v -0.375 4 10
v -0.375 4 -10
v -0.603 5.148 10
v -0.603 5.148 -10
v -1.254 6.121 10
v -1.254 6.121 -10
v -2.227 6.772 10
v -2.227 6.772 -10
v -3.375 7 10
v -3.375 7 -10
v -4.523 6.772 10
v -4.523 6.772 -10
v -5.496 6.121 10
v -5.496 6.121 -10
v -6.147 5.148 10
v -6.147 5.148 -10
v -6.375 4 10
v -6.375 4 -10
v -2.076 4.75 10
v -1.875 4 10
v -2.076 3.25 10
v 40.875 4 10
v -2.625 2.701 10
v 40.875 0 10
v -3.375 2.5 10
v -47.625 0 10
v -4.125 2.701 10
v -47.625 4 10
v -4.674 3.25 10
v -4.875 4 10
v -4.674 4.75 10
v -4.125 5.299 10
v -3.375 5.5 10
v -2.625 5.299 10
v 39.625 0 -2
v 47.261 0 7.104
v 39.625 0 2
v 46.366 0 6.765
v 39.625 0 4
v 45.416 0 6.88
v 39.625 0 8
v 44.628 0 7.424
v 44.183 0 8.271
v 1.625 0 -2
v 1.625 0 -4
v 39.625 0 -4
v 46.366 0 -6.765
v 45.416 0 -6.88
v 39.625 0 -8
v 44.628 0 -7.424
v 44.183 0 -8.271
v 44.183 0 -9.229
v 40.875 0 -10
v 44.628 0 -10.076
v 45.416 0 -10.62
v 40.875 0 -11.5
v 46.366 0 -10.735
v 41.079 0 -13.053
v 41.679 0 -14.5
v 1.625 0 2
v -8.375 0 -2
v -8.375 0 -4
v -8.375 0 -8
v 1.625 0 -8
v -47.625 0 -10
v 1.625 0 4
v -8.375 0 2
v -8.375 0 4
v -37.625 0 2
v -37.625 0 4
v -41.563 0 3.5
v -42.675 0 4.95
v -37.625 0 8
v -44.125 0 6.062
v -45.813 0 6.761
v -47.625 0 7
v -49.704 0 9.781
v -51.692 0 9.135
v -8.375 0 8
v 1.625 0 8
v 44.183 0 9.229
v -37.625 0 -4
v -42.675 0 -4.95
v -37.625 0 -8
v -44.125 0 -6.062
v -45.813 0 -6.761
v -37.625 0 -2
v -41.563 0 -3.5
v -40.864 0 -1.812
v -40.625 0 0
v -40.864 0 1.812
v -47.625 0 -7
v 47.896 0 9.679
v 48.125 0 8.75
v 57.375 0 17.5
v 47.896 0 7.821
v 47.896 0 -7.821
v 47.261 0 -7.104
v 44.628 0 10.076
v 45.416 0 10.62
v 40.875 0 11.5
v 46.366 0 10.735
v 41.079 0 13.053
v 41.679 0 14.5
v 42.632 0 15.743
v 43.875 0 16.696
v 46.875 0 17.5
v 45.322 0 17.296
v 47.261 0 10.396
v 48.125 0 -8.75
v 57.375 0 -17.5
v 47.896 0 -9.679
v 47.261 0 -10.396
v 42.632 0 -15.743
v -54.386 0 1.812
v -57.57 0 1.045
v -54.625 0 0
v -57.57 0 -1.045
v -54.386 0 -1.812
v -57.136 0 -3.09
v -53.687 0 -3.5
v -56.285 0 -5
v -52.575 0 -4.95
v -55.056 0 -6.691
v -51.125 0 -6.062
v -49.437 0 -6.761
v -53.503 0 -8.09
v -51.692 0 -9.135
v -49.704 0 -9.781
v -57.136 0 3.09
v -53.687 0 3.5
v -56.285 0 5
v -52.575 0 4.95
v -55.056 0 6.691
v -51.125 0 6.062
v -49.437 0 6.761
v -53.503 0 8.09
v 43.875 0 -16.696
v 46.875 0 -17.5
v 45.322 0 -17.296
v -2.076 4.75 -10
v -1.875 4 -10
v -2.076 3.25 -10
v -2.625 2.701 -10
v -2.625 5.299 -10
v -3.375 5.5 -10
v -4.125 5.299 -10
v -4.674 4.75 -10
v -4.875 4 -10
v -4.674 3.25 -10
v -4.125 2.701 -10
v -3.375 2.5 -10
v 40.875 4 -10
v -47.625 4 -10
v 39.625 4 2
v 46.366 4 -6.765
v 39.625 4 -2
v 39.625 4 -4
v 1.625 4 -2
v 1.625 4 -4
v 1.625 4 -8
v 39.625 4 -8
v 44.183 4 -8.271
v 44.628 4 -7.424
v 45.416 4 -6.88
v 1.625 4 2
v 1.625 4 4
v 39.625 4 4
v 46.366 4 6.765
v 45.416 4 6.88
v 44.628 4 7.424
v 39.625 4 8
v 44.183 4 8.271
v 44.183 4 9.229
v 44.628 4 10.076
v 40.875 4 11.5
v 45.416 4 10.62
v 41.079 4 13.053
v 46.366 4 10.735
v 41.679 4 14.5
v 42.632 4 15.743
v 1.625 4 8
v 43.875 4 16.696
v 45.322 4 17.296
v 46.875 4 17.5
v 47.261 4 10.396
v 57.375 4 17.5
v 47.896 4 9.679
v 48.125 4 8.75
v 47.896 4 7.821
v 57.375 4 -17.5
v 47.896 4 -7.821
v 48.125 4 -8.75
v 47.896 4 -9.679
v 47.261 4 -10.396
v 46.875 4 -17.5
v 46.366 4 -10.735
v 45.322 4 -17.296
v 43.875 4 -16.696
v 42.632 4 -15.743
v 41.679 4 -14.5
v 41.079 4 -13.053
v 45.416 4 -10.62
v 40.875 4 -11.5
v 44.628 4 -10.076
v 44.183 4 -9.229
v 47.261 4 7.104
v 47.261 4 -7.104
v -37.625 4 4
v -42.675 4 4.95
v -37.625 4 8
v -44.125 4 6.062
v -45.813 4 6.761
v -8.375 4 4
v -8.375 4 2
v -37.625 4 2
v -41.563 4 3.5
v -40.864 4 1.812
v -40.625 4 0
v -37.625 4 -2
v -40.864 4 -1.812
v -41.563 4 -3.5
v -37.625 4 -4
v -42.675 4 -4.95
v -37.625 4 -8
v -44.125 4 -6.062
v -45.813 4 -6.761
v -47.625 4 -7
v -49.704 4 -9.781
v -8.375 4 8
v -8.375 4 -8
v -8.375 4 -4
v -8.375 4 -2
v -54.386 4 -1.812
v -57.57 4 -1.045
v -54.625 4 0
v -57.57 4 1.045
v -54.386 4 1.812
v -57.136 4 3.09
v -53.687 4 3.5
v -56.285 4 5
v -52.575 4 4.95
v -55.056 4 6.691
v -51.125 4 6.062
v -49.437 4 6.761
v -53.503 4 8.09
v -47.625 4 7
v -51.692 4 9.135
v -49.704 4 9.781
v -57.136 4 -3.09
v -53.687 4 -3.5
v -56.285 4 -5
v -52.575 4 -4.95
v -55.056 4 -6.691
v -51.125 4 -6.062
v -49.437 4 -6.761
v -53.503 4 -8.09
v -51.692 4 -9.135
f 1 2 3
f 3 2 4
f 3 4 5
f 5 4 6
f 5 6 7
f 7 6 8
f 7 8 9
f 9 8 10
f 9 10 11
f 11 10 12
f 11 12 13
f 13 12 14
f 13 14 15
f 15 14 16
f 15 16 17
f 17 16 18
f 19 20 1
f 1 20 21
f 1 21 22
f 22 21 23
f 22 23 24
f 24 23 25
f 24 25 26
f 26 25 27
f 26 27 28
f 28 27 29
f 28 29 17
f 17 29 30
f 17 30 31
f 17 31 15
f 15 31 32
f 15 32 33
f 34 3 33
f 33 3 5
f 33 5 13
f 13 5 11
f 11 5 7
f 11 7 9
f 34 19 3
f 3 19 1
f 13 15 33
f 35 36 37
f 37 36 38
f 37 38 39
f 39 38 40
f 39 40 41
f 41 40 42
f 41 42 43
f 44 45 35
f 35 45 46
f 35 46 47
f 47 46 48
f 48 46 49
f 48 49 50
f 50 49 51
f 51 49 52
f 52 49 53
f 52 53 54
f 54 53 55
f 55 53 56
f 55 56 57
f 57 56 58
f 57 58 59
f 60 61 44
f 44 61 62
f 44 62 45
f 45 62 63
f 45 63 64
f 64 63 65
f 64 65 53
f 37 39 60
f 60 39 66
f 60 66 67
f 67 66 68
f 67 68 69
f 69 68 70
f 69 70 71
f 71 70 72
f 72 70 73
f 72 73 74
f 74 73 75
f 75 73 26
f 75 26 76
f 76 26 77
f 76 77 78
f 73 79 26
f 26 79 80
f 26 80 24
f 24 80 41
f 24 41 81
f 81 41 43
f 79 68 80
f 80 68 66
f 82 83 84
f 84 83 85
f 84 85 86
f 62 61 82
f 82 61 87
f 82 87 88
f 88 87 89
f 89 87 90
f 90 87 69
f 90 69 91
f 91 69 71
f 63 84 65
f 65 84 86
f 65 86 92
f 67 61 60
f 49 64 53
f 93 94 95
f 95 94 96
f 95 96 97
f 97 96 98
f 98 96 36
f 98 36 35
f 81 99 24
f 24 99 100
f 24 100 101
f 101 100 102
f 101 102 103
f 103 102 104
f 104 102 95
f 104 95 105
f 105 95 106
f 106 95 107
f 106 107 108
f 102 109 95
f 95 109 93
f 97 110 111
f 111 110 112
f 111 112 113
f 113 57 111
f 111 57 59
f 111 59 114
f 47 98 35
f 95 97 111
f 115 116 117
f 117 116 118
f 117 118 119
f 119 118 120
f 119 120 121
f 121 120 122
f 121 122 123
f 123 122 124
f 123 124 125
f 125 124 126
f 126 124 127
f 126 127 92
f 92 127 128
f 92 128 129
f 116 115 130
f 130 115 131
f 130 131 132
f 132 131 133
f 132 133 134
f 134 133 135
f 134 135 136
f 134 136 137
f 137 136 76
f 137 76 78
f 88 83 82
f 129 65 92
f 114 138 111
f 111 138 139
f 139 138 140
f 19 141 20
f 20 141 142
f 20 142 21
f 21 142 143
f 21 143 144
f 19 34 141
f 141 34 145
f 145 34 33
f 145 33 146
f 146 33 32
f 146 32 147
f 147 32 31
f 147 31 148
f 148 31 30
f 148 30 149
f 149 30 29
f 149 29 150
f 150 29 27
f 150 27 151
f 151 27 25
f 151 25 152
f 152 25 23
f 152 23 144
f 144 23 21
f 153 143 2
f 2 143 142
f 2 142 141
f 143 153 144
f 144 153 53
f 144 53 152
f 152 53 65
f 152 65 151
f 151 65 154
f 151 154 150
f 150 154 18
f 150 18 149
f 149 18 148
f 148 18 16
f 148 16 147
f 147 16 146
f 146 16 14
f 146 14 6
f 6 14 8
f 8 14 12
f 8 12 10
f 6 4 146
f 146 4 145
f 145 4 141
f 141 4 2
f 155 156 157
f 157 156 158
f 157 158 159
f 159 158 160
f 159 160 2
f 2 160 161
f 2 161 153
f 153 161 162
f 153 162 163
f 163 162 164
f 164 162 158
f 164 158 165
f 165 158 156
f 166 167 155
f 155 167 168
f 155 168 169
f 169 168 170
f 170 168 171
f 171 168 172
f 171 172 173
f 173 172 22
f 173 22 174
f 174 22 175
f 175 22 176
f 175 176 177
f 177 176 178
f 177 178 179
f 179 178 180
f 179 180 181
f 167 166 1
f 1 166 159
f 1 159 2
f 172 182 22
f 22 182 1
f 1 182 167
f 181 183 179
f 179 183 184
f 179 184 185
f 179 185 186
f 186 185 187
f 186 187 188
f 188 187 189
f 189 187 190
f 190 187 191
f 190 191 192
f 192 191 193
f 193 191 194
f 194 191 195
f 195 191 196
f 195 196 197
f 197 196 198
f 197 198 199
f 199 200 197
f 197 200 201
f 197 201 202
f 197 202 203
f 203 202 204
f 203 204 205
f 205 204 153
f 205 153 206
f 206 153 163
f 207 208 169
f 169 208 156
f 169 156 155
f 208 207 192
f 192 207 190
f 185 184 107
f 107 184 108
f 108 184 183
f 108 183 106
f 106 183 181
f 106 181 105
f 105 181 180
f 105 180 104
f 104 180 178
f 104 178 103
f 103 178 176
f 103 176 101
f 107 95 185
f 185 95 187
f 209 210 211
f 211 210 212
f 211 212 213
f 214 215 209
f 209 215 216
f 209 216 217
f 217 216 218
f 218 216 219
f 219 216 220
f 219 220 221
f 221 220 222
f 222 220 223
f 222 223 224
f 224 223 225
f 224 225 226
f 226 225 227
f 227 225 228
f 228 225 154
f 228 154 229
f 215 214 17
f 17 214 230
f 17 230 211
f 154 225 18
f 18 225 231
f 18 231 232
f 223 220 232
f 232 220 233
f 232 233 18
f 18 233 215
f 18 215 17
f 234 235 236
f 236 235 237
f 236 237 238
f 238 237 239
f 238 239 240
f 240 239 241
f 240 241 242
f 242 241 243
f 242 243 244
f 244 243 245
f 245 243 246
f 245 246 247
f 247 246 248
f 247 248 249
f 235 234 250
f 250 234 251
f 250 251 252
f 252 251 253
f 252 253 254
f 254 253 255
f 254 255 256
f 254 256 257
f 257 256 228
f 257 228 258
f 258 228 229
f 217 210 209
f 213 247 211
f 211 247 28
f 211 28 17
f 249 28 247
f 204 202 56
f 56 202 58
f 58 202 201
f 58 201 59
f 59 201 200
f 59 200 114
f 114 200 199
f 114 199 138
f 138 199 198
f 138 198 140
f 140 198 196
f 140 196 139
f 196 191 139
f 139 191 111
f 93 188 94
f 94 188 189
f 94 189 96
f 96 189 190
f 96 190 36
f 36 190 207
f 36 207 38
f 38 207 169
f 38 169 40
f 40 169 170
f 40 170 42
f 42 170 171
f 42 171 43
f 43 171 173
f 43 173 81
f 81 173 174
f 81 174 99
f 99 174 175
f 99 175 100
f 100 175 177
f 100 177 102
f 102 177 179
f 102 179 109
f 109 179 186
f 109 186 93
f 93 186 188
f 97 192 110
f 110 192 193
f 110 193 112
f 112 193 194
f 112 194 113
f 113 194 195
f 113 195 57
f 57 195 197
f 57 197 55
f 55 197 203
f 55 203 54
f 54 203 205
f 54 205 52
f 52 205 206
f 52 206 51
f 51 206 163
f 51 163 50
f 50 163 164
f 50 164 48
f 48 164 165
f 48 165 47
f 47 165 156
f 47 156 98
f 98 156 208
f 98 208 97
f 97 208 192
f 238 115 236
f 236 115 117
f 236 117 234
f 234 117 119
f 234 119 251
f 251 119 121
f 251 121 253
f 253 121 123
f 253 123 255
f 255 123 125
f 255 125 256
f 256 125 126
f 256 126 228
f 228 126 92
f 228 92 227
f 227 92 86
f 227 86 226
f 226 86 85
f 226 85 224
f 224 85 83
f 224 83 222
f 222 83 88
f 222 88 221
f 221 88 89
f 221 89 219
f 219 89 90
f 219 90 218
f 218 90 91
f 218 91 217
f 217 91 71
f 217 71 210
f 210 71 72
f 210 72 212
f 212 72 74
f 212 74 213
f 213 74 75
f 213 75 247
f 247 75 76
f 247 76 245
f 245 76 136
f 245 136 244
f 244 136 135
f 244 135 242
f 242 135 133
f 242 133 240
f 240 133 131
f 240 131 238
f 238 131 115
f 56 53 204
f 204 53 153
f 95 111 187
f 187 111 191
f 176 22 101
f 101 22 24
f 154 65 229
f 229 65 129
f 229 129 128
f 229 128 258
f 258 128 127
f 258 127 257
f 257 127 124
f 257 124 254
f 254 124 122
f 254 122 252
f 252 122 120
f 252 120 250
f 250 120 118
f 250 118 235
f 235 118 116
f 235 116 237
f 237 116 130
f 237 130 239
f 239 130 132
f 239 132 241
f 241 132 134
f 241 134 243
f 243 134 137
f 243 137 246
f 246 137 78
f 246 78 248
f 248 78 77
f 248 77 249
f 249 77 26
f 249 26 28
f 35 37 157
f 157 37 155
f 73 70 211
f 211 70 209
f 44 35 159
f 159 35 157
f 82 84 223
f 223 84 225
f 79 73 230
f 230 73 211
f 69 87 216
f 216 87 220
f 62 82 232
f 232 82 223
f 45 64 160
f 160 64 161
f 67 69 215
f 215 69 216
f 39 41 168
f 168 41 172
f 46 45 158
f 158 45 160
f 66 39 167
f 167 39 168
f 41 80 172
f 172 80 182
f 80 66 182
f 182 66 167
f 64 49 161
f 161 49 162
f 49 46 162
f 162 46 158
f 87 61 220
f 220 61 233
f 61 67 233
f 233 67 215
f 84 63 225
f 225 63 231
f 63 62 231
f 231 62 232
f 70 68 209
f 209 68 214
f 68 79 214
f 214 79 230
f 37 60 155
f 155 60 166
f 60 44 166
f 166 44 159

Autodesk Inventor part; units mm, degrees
ref_plane "YZ Plane" through (0, 0, 0) normal (1, 0, 0) x (0, 1, 0)
ref_plane "XZ Plane" through (0, 0, 0) normal (0, 1, 0) x (-1, 0, 0)
ref_plane "XY Plane" through (0, 0, 0) normal (0, 0, 1) x (1, 0, 0)
sketch "Main Sketch" plane through (0, 0, 0) normal (0, 1, 0) x (-1, 0, 0)
  line L0 (-57.375, -12.0472) -> (-57.375, 12.0472)
  line L1 (-57.375, 12.0472) -> (47.625, -10) construction
  line L2 (47.625, 10) -> (-57.375, -12.0472) construction
  circle A0 centre (47.625, 0) radius 7
  arc A1 (47.625, -10) -> (47.625, 10) centre (47.625, 0) ccw
  line L3 (-40.875, 17.5) -> (-57.375, 17.5)
  line L4 (-57.375, 17.5) -> (-57.375, -17.5)
  line L5 (-57.375, -17.5) -> (-40.875, -17.5)
  line L6 (-40.875, 17.5) -> (-57.375, -17.5) construction
  line L7 (-57.375, 17.5) -> (-40.875, -17.5) construction
  line L8 (47.625, -10) -> (-40.875, -10)
  line L9 (-40.875, -17.5) -> (-40.875, -10)
  line L10 (-40.875, 10) -> (-40.875, 17.5)
  line L11 (-40.875, 10) -> (47.625, 10)
  point P0 (0, 0)
  point P1 (-49.125, 0)
  dimension "d3" = 14
  dimension "d4" = 105
  dimension "d13" = 16.5
  dimension "d14" = 35
  dimension "d15" = 0
  dimension "d18" = 20
extrude "Main Extrusion" add sketch "Main Sketch" along normal blind 4
sketch "Screw Holes Sketch" plane through (0, 4, 0) normal (0, 1, 0) x (1, 0, 0)
  circle A0 centre (46.125, -8.75) radius 2
  line L0 (57.375, 17.5) -> (40.875, 17.5) projected
  line L1 (40.875, -17.5) -> (57.375, -17.5) projected
  line L2 (35.2664, 0) -> (65.7891, 0)
  line L3 (51.375, -27.0398) -> (51.375, 30.2346) construction
  line L4 (57.375, -17.5) -> (57.375, 17.5) projected
  line L5 (40.875, -10) -> (40.875, -17.5) projected
  circle A1 centre (46.125, 8.75) radius 2
  line L6 (51.375, 27.0398) -> (51.375, -30.2346) construction
  point P0 (0, 0)
  dimension "d21" = 4
  dimension "d22" = 35
  dimension "d23" = 6
  dimension "d24" = 5.25
  dimension "d25" = 5.25
  dimension "d26" = 10.5
  dimension "d27" = 8.75
  dimension "d28" = 17.5
extrude "Screw Holes Cut" cut sketch "Screw Holes Sketch" against normal through all
fillet "Smoooooooooooooooooth" radius 6 2 edges at (40.875, 2, -17.5) (40.875, 2, 17.5)
sketch "Side Axel Hole Sketch" plane through (-47.625, 0, 10) normal (0, 0, 1) x (1, 0, 0)
  line L0 (88.5, 4) -> (88.5, 0) projected
  line L1 (0, 0) -> (0, 4) projected
  line L2 (44.25, -12.0383) -> (44.25, 22.7681) construction
  line L3 (88.5, 0) -> (0, 0) projected
  line L4 (0, 4) -> (88.5, 4) projected
  circle A0 centre (44.25, 4) radius 1.5
  point P0 (47.625, 0)
  dimension "d32" = 88.5
  dimension "d33" = 44.25
  dimension "d34" = 44.25
  dimension "d35" = 4
  dimension "d41" = 3
extrude "Side Axel Hole Cut" cut sketch "Side Axel Hole Sketch" against normal blind 20 contours A0 L4 | L4 A0
sketch "Side Hole Extension Sketch" plane through (-47.625, 0, 10) normal (0, 0, 1) x (1, 0, 0)
  arc A0 (42.75, 4) -> (45.75, 4) centre (44.25, 4) ccw projected
  circle A1 centre (44.25, 4) radius 3
  circle A2 centre (44.25, 4) radius 1.5
  point P0 (47.625, 0)
  dimension "d44" = 6
extrude "Side Hole Extrusion" add sketch "Side Hole Extension Sketch" against normal blind 20
sketch "Body Holes Sketch" plane through (0, 4, 0) normal (0, 1, 0) x (1, 0, 0)
  line L0 (-37.625, 8) -> (-8.375, 8)
  line L1 (-8.375, 8) -> (-8.375, 4)
  line L2 (-8.375, 4) -> (-37.625, 4)
  line L3 (-37.625, 4) -> (-37.625, 8)
  line L4 (-6.375, -10) -> (-6.375, 10) projected
  circle A0 centre (-47.625, 0) radius 7 projected
  line L5 (-47.625, 7) -> (-47.625, -13.5384) construction
  line L6 (-6.375, 10) -> (-47.625, 10) projected
  line L7 (-47.625, 1) -> (-47.625, -19.5384) construction
  line L8 (-37.625, 2) -> (-8.375, 2)
  line L9 (-8.375, 2) -> (-8.375, -2)
  line L10 (-8.375, -2) -> (-37.625, -2)
  line L11 (-37.625, -2) -> (-37.625, 2)
  line L12 (-47.625, -5) -> (-47.625, -25.5384) construction
  line L13 (-37.625, -4) -> (-8.375, -4)
  line L14 (-8.375, -4) -> (-8.375, -8)
  line L15 (-8.375, -8) -> (-37.625, -8)
  line L16 (-37.625, -8) -> (-37.625, -4)
  line L17 (1.625, 8) -> (39.625, 8)
  line L18 (39.625, 8) -> (39.625, 4)
  line L19 (39.625, 4) -> (1.625, 4)
  line L20 (1.625, 4) -> (1.625, 8)
  line L21 (-0.375, 10) -> (-0.375, -10) projected
  line L22 (40.875, 10) -> (-0.375, 10) projected
  line L23 (1.625, -2) -> (1.625, 2)
  line L24 (39.625, -2) -> (1.625, -2)
  line L25 (39.625, 2) -> (39.625, -2)
  line L26 (1.625, 2) -> (39.625, 2)
  line L27 (1.625, -8) -> (1.625, -4)
  line L28 (39.625, -8) -> (1.625, -8)
  line L29 (39.625, -4) -> (39.625, -8)
  line L30 (1.625, -4) -> (39.625, -4)
  point P0 (0, 0)
  dimension "d77" = 4
  dimension "d78" = 2
  dimension "d79" = 10
  dimension "d80" = 2
  dimension "d83" = 6
  dimension "d88" = 2
  dimension "d89" = 2
  dimension "d90" = 4
  dimension "d91" = 38
  dimension "d94" = 6
extrude "Swiss-ified" cut sketch "Body Holes Sketch" against normal through all contours L0 L1 L2 L3 | L8 L9 L10 L11 | L13 L14 L15 L16 | L17 L18 L19 L20 | L23 L26 L25 L24 | L27 L30 L29 L28
properties part number "Side V2.1"
